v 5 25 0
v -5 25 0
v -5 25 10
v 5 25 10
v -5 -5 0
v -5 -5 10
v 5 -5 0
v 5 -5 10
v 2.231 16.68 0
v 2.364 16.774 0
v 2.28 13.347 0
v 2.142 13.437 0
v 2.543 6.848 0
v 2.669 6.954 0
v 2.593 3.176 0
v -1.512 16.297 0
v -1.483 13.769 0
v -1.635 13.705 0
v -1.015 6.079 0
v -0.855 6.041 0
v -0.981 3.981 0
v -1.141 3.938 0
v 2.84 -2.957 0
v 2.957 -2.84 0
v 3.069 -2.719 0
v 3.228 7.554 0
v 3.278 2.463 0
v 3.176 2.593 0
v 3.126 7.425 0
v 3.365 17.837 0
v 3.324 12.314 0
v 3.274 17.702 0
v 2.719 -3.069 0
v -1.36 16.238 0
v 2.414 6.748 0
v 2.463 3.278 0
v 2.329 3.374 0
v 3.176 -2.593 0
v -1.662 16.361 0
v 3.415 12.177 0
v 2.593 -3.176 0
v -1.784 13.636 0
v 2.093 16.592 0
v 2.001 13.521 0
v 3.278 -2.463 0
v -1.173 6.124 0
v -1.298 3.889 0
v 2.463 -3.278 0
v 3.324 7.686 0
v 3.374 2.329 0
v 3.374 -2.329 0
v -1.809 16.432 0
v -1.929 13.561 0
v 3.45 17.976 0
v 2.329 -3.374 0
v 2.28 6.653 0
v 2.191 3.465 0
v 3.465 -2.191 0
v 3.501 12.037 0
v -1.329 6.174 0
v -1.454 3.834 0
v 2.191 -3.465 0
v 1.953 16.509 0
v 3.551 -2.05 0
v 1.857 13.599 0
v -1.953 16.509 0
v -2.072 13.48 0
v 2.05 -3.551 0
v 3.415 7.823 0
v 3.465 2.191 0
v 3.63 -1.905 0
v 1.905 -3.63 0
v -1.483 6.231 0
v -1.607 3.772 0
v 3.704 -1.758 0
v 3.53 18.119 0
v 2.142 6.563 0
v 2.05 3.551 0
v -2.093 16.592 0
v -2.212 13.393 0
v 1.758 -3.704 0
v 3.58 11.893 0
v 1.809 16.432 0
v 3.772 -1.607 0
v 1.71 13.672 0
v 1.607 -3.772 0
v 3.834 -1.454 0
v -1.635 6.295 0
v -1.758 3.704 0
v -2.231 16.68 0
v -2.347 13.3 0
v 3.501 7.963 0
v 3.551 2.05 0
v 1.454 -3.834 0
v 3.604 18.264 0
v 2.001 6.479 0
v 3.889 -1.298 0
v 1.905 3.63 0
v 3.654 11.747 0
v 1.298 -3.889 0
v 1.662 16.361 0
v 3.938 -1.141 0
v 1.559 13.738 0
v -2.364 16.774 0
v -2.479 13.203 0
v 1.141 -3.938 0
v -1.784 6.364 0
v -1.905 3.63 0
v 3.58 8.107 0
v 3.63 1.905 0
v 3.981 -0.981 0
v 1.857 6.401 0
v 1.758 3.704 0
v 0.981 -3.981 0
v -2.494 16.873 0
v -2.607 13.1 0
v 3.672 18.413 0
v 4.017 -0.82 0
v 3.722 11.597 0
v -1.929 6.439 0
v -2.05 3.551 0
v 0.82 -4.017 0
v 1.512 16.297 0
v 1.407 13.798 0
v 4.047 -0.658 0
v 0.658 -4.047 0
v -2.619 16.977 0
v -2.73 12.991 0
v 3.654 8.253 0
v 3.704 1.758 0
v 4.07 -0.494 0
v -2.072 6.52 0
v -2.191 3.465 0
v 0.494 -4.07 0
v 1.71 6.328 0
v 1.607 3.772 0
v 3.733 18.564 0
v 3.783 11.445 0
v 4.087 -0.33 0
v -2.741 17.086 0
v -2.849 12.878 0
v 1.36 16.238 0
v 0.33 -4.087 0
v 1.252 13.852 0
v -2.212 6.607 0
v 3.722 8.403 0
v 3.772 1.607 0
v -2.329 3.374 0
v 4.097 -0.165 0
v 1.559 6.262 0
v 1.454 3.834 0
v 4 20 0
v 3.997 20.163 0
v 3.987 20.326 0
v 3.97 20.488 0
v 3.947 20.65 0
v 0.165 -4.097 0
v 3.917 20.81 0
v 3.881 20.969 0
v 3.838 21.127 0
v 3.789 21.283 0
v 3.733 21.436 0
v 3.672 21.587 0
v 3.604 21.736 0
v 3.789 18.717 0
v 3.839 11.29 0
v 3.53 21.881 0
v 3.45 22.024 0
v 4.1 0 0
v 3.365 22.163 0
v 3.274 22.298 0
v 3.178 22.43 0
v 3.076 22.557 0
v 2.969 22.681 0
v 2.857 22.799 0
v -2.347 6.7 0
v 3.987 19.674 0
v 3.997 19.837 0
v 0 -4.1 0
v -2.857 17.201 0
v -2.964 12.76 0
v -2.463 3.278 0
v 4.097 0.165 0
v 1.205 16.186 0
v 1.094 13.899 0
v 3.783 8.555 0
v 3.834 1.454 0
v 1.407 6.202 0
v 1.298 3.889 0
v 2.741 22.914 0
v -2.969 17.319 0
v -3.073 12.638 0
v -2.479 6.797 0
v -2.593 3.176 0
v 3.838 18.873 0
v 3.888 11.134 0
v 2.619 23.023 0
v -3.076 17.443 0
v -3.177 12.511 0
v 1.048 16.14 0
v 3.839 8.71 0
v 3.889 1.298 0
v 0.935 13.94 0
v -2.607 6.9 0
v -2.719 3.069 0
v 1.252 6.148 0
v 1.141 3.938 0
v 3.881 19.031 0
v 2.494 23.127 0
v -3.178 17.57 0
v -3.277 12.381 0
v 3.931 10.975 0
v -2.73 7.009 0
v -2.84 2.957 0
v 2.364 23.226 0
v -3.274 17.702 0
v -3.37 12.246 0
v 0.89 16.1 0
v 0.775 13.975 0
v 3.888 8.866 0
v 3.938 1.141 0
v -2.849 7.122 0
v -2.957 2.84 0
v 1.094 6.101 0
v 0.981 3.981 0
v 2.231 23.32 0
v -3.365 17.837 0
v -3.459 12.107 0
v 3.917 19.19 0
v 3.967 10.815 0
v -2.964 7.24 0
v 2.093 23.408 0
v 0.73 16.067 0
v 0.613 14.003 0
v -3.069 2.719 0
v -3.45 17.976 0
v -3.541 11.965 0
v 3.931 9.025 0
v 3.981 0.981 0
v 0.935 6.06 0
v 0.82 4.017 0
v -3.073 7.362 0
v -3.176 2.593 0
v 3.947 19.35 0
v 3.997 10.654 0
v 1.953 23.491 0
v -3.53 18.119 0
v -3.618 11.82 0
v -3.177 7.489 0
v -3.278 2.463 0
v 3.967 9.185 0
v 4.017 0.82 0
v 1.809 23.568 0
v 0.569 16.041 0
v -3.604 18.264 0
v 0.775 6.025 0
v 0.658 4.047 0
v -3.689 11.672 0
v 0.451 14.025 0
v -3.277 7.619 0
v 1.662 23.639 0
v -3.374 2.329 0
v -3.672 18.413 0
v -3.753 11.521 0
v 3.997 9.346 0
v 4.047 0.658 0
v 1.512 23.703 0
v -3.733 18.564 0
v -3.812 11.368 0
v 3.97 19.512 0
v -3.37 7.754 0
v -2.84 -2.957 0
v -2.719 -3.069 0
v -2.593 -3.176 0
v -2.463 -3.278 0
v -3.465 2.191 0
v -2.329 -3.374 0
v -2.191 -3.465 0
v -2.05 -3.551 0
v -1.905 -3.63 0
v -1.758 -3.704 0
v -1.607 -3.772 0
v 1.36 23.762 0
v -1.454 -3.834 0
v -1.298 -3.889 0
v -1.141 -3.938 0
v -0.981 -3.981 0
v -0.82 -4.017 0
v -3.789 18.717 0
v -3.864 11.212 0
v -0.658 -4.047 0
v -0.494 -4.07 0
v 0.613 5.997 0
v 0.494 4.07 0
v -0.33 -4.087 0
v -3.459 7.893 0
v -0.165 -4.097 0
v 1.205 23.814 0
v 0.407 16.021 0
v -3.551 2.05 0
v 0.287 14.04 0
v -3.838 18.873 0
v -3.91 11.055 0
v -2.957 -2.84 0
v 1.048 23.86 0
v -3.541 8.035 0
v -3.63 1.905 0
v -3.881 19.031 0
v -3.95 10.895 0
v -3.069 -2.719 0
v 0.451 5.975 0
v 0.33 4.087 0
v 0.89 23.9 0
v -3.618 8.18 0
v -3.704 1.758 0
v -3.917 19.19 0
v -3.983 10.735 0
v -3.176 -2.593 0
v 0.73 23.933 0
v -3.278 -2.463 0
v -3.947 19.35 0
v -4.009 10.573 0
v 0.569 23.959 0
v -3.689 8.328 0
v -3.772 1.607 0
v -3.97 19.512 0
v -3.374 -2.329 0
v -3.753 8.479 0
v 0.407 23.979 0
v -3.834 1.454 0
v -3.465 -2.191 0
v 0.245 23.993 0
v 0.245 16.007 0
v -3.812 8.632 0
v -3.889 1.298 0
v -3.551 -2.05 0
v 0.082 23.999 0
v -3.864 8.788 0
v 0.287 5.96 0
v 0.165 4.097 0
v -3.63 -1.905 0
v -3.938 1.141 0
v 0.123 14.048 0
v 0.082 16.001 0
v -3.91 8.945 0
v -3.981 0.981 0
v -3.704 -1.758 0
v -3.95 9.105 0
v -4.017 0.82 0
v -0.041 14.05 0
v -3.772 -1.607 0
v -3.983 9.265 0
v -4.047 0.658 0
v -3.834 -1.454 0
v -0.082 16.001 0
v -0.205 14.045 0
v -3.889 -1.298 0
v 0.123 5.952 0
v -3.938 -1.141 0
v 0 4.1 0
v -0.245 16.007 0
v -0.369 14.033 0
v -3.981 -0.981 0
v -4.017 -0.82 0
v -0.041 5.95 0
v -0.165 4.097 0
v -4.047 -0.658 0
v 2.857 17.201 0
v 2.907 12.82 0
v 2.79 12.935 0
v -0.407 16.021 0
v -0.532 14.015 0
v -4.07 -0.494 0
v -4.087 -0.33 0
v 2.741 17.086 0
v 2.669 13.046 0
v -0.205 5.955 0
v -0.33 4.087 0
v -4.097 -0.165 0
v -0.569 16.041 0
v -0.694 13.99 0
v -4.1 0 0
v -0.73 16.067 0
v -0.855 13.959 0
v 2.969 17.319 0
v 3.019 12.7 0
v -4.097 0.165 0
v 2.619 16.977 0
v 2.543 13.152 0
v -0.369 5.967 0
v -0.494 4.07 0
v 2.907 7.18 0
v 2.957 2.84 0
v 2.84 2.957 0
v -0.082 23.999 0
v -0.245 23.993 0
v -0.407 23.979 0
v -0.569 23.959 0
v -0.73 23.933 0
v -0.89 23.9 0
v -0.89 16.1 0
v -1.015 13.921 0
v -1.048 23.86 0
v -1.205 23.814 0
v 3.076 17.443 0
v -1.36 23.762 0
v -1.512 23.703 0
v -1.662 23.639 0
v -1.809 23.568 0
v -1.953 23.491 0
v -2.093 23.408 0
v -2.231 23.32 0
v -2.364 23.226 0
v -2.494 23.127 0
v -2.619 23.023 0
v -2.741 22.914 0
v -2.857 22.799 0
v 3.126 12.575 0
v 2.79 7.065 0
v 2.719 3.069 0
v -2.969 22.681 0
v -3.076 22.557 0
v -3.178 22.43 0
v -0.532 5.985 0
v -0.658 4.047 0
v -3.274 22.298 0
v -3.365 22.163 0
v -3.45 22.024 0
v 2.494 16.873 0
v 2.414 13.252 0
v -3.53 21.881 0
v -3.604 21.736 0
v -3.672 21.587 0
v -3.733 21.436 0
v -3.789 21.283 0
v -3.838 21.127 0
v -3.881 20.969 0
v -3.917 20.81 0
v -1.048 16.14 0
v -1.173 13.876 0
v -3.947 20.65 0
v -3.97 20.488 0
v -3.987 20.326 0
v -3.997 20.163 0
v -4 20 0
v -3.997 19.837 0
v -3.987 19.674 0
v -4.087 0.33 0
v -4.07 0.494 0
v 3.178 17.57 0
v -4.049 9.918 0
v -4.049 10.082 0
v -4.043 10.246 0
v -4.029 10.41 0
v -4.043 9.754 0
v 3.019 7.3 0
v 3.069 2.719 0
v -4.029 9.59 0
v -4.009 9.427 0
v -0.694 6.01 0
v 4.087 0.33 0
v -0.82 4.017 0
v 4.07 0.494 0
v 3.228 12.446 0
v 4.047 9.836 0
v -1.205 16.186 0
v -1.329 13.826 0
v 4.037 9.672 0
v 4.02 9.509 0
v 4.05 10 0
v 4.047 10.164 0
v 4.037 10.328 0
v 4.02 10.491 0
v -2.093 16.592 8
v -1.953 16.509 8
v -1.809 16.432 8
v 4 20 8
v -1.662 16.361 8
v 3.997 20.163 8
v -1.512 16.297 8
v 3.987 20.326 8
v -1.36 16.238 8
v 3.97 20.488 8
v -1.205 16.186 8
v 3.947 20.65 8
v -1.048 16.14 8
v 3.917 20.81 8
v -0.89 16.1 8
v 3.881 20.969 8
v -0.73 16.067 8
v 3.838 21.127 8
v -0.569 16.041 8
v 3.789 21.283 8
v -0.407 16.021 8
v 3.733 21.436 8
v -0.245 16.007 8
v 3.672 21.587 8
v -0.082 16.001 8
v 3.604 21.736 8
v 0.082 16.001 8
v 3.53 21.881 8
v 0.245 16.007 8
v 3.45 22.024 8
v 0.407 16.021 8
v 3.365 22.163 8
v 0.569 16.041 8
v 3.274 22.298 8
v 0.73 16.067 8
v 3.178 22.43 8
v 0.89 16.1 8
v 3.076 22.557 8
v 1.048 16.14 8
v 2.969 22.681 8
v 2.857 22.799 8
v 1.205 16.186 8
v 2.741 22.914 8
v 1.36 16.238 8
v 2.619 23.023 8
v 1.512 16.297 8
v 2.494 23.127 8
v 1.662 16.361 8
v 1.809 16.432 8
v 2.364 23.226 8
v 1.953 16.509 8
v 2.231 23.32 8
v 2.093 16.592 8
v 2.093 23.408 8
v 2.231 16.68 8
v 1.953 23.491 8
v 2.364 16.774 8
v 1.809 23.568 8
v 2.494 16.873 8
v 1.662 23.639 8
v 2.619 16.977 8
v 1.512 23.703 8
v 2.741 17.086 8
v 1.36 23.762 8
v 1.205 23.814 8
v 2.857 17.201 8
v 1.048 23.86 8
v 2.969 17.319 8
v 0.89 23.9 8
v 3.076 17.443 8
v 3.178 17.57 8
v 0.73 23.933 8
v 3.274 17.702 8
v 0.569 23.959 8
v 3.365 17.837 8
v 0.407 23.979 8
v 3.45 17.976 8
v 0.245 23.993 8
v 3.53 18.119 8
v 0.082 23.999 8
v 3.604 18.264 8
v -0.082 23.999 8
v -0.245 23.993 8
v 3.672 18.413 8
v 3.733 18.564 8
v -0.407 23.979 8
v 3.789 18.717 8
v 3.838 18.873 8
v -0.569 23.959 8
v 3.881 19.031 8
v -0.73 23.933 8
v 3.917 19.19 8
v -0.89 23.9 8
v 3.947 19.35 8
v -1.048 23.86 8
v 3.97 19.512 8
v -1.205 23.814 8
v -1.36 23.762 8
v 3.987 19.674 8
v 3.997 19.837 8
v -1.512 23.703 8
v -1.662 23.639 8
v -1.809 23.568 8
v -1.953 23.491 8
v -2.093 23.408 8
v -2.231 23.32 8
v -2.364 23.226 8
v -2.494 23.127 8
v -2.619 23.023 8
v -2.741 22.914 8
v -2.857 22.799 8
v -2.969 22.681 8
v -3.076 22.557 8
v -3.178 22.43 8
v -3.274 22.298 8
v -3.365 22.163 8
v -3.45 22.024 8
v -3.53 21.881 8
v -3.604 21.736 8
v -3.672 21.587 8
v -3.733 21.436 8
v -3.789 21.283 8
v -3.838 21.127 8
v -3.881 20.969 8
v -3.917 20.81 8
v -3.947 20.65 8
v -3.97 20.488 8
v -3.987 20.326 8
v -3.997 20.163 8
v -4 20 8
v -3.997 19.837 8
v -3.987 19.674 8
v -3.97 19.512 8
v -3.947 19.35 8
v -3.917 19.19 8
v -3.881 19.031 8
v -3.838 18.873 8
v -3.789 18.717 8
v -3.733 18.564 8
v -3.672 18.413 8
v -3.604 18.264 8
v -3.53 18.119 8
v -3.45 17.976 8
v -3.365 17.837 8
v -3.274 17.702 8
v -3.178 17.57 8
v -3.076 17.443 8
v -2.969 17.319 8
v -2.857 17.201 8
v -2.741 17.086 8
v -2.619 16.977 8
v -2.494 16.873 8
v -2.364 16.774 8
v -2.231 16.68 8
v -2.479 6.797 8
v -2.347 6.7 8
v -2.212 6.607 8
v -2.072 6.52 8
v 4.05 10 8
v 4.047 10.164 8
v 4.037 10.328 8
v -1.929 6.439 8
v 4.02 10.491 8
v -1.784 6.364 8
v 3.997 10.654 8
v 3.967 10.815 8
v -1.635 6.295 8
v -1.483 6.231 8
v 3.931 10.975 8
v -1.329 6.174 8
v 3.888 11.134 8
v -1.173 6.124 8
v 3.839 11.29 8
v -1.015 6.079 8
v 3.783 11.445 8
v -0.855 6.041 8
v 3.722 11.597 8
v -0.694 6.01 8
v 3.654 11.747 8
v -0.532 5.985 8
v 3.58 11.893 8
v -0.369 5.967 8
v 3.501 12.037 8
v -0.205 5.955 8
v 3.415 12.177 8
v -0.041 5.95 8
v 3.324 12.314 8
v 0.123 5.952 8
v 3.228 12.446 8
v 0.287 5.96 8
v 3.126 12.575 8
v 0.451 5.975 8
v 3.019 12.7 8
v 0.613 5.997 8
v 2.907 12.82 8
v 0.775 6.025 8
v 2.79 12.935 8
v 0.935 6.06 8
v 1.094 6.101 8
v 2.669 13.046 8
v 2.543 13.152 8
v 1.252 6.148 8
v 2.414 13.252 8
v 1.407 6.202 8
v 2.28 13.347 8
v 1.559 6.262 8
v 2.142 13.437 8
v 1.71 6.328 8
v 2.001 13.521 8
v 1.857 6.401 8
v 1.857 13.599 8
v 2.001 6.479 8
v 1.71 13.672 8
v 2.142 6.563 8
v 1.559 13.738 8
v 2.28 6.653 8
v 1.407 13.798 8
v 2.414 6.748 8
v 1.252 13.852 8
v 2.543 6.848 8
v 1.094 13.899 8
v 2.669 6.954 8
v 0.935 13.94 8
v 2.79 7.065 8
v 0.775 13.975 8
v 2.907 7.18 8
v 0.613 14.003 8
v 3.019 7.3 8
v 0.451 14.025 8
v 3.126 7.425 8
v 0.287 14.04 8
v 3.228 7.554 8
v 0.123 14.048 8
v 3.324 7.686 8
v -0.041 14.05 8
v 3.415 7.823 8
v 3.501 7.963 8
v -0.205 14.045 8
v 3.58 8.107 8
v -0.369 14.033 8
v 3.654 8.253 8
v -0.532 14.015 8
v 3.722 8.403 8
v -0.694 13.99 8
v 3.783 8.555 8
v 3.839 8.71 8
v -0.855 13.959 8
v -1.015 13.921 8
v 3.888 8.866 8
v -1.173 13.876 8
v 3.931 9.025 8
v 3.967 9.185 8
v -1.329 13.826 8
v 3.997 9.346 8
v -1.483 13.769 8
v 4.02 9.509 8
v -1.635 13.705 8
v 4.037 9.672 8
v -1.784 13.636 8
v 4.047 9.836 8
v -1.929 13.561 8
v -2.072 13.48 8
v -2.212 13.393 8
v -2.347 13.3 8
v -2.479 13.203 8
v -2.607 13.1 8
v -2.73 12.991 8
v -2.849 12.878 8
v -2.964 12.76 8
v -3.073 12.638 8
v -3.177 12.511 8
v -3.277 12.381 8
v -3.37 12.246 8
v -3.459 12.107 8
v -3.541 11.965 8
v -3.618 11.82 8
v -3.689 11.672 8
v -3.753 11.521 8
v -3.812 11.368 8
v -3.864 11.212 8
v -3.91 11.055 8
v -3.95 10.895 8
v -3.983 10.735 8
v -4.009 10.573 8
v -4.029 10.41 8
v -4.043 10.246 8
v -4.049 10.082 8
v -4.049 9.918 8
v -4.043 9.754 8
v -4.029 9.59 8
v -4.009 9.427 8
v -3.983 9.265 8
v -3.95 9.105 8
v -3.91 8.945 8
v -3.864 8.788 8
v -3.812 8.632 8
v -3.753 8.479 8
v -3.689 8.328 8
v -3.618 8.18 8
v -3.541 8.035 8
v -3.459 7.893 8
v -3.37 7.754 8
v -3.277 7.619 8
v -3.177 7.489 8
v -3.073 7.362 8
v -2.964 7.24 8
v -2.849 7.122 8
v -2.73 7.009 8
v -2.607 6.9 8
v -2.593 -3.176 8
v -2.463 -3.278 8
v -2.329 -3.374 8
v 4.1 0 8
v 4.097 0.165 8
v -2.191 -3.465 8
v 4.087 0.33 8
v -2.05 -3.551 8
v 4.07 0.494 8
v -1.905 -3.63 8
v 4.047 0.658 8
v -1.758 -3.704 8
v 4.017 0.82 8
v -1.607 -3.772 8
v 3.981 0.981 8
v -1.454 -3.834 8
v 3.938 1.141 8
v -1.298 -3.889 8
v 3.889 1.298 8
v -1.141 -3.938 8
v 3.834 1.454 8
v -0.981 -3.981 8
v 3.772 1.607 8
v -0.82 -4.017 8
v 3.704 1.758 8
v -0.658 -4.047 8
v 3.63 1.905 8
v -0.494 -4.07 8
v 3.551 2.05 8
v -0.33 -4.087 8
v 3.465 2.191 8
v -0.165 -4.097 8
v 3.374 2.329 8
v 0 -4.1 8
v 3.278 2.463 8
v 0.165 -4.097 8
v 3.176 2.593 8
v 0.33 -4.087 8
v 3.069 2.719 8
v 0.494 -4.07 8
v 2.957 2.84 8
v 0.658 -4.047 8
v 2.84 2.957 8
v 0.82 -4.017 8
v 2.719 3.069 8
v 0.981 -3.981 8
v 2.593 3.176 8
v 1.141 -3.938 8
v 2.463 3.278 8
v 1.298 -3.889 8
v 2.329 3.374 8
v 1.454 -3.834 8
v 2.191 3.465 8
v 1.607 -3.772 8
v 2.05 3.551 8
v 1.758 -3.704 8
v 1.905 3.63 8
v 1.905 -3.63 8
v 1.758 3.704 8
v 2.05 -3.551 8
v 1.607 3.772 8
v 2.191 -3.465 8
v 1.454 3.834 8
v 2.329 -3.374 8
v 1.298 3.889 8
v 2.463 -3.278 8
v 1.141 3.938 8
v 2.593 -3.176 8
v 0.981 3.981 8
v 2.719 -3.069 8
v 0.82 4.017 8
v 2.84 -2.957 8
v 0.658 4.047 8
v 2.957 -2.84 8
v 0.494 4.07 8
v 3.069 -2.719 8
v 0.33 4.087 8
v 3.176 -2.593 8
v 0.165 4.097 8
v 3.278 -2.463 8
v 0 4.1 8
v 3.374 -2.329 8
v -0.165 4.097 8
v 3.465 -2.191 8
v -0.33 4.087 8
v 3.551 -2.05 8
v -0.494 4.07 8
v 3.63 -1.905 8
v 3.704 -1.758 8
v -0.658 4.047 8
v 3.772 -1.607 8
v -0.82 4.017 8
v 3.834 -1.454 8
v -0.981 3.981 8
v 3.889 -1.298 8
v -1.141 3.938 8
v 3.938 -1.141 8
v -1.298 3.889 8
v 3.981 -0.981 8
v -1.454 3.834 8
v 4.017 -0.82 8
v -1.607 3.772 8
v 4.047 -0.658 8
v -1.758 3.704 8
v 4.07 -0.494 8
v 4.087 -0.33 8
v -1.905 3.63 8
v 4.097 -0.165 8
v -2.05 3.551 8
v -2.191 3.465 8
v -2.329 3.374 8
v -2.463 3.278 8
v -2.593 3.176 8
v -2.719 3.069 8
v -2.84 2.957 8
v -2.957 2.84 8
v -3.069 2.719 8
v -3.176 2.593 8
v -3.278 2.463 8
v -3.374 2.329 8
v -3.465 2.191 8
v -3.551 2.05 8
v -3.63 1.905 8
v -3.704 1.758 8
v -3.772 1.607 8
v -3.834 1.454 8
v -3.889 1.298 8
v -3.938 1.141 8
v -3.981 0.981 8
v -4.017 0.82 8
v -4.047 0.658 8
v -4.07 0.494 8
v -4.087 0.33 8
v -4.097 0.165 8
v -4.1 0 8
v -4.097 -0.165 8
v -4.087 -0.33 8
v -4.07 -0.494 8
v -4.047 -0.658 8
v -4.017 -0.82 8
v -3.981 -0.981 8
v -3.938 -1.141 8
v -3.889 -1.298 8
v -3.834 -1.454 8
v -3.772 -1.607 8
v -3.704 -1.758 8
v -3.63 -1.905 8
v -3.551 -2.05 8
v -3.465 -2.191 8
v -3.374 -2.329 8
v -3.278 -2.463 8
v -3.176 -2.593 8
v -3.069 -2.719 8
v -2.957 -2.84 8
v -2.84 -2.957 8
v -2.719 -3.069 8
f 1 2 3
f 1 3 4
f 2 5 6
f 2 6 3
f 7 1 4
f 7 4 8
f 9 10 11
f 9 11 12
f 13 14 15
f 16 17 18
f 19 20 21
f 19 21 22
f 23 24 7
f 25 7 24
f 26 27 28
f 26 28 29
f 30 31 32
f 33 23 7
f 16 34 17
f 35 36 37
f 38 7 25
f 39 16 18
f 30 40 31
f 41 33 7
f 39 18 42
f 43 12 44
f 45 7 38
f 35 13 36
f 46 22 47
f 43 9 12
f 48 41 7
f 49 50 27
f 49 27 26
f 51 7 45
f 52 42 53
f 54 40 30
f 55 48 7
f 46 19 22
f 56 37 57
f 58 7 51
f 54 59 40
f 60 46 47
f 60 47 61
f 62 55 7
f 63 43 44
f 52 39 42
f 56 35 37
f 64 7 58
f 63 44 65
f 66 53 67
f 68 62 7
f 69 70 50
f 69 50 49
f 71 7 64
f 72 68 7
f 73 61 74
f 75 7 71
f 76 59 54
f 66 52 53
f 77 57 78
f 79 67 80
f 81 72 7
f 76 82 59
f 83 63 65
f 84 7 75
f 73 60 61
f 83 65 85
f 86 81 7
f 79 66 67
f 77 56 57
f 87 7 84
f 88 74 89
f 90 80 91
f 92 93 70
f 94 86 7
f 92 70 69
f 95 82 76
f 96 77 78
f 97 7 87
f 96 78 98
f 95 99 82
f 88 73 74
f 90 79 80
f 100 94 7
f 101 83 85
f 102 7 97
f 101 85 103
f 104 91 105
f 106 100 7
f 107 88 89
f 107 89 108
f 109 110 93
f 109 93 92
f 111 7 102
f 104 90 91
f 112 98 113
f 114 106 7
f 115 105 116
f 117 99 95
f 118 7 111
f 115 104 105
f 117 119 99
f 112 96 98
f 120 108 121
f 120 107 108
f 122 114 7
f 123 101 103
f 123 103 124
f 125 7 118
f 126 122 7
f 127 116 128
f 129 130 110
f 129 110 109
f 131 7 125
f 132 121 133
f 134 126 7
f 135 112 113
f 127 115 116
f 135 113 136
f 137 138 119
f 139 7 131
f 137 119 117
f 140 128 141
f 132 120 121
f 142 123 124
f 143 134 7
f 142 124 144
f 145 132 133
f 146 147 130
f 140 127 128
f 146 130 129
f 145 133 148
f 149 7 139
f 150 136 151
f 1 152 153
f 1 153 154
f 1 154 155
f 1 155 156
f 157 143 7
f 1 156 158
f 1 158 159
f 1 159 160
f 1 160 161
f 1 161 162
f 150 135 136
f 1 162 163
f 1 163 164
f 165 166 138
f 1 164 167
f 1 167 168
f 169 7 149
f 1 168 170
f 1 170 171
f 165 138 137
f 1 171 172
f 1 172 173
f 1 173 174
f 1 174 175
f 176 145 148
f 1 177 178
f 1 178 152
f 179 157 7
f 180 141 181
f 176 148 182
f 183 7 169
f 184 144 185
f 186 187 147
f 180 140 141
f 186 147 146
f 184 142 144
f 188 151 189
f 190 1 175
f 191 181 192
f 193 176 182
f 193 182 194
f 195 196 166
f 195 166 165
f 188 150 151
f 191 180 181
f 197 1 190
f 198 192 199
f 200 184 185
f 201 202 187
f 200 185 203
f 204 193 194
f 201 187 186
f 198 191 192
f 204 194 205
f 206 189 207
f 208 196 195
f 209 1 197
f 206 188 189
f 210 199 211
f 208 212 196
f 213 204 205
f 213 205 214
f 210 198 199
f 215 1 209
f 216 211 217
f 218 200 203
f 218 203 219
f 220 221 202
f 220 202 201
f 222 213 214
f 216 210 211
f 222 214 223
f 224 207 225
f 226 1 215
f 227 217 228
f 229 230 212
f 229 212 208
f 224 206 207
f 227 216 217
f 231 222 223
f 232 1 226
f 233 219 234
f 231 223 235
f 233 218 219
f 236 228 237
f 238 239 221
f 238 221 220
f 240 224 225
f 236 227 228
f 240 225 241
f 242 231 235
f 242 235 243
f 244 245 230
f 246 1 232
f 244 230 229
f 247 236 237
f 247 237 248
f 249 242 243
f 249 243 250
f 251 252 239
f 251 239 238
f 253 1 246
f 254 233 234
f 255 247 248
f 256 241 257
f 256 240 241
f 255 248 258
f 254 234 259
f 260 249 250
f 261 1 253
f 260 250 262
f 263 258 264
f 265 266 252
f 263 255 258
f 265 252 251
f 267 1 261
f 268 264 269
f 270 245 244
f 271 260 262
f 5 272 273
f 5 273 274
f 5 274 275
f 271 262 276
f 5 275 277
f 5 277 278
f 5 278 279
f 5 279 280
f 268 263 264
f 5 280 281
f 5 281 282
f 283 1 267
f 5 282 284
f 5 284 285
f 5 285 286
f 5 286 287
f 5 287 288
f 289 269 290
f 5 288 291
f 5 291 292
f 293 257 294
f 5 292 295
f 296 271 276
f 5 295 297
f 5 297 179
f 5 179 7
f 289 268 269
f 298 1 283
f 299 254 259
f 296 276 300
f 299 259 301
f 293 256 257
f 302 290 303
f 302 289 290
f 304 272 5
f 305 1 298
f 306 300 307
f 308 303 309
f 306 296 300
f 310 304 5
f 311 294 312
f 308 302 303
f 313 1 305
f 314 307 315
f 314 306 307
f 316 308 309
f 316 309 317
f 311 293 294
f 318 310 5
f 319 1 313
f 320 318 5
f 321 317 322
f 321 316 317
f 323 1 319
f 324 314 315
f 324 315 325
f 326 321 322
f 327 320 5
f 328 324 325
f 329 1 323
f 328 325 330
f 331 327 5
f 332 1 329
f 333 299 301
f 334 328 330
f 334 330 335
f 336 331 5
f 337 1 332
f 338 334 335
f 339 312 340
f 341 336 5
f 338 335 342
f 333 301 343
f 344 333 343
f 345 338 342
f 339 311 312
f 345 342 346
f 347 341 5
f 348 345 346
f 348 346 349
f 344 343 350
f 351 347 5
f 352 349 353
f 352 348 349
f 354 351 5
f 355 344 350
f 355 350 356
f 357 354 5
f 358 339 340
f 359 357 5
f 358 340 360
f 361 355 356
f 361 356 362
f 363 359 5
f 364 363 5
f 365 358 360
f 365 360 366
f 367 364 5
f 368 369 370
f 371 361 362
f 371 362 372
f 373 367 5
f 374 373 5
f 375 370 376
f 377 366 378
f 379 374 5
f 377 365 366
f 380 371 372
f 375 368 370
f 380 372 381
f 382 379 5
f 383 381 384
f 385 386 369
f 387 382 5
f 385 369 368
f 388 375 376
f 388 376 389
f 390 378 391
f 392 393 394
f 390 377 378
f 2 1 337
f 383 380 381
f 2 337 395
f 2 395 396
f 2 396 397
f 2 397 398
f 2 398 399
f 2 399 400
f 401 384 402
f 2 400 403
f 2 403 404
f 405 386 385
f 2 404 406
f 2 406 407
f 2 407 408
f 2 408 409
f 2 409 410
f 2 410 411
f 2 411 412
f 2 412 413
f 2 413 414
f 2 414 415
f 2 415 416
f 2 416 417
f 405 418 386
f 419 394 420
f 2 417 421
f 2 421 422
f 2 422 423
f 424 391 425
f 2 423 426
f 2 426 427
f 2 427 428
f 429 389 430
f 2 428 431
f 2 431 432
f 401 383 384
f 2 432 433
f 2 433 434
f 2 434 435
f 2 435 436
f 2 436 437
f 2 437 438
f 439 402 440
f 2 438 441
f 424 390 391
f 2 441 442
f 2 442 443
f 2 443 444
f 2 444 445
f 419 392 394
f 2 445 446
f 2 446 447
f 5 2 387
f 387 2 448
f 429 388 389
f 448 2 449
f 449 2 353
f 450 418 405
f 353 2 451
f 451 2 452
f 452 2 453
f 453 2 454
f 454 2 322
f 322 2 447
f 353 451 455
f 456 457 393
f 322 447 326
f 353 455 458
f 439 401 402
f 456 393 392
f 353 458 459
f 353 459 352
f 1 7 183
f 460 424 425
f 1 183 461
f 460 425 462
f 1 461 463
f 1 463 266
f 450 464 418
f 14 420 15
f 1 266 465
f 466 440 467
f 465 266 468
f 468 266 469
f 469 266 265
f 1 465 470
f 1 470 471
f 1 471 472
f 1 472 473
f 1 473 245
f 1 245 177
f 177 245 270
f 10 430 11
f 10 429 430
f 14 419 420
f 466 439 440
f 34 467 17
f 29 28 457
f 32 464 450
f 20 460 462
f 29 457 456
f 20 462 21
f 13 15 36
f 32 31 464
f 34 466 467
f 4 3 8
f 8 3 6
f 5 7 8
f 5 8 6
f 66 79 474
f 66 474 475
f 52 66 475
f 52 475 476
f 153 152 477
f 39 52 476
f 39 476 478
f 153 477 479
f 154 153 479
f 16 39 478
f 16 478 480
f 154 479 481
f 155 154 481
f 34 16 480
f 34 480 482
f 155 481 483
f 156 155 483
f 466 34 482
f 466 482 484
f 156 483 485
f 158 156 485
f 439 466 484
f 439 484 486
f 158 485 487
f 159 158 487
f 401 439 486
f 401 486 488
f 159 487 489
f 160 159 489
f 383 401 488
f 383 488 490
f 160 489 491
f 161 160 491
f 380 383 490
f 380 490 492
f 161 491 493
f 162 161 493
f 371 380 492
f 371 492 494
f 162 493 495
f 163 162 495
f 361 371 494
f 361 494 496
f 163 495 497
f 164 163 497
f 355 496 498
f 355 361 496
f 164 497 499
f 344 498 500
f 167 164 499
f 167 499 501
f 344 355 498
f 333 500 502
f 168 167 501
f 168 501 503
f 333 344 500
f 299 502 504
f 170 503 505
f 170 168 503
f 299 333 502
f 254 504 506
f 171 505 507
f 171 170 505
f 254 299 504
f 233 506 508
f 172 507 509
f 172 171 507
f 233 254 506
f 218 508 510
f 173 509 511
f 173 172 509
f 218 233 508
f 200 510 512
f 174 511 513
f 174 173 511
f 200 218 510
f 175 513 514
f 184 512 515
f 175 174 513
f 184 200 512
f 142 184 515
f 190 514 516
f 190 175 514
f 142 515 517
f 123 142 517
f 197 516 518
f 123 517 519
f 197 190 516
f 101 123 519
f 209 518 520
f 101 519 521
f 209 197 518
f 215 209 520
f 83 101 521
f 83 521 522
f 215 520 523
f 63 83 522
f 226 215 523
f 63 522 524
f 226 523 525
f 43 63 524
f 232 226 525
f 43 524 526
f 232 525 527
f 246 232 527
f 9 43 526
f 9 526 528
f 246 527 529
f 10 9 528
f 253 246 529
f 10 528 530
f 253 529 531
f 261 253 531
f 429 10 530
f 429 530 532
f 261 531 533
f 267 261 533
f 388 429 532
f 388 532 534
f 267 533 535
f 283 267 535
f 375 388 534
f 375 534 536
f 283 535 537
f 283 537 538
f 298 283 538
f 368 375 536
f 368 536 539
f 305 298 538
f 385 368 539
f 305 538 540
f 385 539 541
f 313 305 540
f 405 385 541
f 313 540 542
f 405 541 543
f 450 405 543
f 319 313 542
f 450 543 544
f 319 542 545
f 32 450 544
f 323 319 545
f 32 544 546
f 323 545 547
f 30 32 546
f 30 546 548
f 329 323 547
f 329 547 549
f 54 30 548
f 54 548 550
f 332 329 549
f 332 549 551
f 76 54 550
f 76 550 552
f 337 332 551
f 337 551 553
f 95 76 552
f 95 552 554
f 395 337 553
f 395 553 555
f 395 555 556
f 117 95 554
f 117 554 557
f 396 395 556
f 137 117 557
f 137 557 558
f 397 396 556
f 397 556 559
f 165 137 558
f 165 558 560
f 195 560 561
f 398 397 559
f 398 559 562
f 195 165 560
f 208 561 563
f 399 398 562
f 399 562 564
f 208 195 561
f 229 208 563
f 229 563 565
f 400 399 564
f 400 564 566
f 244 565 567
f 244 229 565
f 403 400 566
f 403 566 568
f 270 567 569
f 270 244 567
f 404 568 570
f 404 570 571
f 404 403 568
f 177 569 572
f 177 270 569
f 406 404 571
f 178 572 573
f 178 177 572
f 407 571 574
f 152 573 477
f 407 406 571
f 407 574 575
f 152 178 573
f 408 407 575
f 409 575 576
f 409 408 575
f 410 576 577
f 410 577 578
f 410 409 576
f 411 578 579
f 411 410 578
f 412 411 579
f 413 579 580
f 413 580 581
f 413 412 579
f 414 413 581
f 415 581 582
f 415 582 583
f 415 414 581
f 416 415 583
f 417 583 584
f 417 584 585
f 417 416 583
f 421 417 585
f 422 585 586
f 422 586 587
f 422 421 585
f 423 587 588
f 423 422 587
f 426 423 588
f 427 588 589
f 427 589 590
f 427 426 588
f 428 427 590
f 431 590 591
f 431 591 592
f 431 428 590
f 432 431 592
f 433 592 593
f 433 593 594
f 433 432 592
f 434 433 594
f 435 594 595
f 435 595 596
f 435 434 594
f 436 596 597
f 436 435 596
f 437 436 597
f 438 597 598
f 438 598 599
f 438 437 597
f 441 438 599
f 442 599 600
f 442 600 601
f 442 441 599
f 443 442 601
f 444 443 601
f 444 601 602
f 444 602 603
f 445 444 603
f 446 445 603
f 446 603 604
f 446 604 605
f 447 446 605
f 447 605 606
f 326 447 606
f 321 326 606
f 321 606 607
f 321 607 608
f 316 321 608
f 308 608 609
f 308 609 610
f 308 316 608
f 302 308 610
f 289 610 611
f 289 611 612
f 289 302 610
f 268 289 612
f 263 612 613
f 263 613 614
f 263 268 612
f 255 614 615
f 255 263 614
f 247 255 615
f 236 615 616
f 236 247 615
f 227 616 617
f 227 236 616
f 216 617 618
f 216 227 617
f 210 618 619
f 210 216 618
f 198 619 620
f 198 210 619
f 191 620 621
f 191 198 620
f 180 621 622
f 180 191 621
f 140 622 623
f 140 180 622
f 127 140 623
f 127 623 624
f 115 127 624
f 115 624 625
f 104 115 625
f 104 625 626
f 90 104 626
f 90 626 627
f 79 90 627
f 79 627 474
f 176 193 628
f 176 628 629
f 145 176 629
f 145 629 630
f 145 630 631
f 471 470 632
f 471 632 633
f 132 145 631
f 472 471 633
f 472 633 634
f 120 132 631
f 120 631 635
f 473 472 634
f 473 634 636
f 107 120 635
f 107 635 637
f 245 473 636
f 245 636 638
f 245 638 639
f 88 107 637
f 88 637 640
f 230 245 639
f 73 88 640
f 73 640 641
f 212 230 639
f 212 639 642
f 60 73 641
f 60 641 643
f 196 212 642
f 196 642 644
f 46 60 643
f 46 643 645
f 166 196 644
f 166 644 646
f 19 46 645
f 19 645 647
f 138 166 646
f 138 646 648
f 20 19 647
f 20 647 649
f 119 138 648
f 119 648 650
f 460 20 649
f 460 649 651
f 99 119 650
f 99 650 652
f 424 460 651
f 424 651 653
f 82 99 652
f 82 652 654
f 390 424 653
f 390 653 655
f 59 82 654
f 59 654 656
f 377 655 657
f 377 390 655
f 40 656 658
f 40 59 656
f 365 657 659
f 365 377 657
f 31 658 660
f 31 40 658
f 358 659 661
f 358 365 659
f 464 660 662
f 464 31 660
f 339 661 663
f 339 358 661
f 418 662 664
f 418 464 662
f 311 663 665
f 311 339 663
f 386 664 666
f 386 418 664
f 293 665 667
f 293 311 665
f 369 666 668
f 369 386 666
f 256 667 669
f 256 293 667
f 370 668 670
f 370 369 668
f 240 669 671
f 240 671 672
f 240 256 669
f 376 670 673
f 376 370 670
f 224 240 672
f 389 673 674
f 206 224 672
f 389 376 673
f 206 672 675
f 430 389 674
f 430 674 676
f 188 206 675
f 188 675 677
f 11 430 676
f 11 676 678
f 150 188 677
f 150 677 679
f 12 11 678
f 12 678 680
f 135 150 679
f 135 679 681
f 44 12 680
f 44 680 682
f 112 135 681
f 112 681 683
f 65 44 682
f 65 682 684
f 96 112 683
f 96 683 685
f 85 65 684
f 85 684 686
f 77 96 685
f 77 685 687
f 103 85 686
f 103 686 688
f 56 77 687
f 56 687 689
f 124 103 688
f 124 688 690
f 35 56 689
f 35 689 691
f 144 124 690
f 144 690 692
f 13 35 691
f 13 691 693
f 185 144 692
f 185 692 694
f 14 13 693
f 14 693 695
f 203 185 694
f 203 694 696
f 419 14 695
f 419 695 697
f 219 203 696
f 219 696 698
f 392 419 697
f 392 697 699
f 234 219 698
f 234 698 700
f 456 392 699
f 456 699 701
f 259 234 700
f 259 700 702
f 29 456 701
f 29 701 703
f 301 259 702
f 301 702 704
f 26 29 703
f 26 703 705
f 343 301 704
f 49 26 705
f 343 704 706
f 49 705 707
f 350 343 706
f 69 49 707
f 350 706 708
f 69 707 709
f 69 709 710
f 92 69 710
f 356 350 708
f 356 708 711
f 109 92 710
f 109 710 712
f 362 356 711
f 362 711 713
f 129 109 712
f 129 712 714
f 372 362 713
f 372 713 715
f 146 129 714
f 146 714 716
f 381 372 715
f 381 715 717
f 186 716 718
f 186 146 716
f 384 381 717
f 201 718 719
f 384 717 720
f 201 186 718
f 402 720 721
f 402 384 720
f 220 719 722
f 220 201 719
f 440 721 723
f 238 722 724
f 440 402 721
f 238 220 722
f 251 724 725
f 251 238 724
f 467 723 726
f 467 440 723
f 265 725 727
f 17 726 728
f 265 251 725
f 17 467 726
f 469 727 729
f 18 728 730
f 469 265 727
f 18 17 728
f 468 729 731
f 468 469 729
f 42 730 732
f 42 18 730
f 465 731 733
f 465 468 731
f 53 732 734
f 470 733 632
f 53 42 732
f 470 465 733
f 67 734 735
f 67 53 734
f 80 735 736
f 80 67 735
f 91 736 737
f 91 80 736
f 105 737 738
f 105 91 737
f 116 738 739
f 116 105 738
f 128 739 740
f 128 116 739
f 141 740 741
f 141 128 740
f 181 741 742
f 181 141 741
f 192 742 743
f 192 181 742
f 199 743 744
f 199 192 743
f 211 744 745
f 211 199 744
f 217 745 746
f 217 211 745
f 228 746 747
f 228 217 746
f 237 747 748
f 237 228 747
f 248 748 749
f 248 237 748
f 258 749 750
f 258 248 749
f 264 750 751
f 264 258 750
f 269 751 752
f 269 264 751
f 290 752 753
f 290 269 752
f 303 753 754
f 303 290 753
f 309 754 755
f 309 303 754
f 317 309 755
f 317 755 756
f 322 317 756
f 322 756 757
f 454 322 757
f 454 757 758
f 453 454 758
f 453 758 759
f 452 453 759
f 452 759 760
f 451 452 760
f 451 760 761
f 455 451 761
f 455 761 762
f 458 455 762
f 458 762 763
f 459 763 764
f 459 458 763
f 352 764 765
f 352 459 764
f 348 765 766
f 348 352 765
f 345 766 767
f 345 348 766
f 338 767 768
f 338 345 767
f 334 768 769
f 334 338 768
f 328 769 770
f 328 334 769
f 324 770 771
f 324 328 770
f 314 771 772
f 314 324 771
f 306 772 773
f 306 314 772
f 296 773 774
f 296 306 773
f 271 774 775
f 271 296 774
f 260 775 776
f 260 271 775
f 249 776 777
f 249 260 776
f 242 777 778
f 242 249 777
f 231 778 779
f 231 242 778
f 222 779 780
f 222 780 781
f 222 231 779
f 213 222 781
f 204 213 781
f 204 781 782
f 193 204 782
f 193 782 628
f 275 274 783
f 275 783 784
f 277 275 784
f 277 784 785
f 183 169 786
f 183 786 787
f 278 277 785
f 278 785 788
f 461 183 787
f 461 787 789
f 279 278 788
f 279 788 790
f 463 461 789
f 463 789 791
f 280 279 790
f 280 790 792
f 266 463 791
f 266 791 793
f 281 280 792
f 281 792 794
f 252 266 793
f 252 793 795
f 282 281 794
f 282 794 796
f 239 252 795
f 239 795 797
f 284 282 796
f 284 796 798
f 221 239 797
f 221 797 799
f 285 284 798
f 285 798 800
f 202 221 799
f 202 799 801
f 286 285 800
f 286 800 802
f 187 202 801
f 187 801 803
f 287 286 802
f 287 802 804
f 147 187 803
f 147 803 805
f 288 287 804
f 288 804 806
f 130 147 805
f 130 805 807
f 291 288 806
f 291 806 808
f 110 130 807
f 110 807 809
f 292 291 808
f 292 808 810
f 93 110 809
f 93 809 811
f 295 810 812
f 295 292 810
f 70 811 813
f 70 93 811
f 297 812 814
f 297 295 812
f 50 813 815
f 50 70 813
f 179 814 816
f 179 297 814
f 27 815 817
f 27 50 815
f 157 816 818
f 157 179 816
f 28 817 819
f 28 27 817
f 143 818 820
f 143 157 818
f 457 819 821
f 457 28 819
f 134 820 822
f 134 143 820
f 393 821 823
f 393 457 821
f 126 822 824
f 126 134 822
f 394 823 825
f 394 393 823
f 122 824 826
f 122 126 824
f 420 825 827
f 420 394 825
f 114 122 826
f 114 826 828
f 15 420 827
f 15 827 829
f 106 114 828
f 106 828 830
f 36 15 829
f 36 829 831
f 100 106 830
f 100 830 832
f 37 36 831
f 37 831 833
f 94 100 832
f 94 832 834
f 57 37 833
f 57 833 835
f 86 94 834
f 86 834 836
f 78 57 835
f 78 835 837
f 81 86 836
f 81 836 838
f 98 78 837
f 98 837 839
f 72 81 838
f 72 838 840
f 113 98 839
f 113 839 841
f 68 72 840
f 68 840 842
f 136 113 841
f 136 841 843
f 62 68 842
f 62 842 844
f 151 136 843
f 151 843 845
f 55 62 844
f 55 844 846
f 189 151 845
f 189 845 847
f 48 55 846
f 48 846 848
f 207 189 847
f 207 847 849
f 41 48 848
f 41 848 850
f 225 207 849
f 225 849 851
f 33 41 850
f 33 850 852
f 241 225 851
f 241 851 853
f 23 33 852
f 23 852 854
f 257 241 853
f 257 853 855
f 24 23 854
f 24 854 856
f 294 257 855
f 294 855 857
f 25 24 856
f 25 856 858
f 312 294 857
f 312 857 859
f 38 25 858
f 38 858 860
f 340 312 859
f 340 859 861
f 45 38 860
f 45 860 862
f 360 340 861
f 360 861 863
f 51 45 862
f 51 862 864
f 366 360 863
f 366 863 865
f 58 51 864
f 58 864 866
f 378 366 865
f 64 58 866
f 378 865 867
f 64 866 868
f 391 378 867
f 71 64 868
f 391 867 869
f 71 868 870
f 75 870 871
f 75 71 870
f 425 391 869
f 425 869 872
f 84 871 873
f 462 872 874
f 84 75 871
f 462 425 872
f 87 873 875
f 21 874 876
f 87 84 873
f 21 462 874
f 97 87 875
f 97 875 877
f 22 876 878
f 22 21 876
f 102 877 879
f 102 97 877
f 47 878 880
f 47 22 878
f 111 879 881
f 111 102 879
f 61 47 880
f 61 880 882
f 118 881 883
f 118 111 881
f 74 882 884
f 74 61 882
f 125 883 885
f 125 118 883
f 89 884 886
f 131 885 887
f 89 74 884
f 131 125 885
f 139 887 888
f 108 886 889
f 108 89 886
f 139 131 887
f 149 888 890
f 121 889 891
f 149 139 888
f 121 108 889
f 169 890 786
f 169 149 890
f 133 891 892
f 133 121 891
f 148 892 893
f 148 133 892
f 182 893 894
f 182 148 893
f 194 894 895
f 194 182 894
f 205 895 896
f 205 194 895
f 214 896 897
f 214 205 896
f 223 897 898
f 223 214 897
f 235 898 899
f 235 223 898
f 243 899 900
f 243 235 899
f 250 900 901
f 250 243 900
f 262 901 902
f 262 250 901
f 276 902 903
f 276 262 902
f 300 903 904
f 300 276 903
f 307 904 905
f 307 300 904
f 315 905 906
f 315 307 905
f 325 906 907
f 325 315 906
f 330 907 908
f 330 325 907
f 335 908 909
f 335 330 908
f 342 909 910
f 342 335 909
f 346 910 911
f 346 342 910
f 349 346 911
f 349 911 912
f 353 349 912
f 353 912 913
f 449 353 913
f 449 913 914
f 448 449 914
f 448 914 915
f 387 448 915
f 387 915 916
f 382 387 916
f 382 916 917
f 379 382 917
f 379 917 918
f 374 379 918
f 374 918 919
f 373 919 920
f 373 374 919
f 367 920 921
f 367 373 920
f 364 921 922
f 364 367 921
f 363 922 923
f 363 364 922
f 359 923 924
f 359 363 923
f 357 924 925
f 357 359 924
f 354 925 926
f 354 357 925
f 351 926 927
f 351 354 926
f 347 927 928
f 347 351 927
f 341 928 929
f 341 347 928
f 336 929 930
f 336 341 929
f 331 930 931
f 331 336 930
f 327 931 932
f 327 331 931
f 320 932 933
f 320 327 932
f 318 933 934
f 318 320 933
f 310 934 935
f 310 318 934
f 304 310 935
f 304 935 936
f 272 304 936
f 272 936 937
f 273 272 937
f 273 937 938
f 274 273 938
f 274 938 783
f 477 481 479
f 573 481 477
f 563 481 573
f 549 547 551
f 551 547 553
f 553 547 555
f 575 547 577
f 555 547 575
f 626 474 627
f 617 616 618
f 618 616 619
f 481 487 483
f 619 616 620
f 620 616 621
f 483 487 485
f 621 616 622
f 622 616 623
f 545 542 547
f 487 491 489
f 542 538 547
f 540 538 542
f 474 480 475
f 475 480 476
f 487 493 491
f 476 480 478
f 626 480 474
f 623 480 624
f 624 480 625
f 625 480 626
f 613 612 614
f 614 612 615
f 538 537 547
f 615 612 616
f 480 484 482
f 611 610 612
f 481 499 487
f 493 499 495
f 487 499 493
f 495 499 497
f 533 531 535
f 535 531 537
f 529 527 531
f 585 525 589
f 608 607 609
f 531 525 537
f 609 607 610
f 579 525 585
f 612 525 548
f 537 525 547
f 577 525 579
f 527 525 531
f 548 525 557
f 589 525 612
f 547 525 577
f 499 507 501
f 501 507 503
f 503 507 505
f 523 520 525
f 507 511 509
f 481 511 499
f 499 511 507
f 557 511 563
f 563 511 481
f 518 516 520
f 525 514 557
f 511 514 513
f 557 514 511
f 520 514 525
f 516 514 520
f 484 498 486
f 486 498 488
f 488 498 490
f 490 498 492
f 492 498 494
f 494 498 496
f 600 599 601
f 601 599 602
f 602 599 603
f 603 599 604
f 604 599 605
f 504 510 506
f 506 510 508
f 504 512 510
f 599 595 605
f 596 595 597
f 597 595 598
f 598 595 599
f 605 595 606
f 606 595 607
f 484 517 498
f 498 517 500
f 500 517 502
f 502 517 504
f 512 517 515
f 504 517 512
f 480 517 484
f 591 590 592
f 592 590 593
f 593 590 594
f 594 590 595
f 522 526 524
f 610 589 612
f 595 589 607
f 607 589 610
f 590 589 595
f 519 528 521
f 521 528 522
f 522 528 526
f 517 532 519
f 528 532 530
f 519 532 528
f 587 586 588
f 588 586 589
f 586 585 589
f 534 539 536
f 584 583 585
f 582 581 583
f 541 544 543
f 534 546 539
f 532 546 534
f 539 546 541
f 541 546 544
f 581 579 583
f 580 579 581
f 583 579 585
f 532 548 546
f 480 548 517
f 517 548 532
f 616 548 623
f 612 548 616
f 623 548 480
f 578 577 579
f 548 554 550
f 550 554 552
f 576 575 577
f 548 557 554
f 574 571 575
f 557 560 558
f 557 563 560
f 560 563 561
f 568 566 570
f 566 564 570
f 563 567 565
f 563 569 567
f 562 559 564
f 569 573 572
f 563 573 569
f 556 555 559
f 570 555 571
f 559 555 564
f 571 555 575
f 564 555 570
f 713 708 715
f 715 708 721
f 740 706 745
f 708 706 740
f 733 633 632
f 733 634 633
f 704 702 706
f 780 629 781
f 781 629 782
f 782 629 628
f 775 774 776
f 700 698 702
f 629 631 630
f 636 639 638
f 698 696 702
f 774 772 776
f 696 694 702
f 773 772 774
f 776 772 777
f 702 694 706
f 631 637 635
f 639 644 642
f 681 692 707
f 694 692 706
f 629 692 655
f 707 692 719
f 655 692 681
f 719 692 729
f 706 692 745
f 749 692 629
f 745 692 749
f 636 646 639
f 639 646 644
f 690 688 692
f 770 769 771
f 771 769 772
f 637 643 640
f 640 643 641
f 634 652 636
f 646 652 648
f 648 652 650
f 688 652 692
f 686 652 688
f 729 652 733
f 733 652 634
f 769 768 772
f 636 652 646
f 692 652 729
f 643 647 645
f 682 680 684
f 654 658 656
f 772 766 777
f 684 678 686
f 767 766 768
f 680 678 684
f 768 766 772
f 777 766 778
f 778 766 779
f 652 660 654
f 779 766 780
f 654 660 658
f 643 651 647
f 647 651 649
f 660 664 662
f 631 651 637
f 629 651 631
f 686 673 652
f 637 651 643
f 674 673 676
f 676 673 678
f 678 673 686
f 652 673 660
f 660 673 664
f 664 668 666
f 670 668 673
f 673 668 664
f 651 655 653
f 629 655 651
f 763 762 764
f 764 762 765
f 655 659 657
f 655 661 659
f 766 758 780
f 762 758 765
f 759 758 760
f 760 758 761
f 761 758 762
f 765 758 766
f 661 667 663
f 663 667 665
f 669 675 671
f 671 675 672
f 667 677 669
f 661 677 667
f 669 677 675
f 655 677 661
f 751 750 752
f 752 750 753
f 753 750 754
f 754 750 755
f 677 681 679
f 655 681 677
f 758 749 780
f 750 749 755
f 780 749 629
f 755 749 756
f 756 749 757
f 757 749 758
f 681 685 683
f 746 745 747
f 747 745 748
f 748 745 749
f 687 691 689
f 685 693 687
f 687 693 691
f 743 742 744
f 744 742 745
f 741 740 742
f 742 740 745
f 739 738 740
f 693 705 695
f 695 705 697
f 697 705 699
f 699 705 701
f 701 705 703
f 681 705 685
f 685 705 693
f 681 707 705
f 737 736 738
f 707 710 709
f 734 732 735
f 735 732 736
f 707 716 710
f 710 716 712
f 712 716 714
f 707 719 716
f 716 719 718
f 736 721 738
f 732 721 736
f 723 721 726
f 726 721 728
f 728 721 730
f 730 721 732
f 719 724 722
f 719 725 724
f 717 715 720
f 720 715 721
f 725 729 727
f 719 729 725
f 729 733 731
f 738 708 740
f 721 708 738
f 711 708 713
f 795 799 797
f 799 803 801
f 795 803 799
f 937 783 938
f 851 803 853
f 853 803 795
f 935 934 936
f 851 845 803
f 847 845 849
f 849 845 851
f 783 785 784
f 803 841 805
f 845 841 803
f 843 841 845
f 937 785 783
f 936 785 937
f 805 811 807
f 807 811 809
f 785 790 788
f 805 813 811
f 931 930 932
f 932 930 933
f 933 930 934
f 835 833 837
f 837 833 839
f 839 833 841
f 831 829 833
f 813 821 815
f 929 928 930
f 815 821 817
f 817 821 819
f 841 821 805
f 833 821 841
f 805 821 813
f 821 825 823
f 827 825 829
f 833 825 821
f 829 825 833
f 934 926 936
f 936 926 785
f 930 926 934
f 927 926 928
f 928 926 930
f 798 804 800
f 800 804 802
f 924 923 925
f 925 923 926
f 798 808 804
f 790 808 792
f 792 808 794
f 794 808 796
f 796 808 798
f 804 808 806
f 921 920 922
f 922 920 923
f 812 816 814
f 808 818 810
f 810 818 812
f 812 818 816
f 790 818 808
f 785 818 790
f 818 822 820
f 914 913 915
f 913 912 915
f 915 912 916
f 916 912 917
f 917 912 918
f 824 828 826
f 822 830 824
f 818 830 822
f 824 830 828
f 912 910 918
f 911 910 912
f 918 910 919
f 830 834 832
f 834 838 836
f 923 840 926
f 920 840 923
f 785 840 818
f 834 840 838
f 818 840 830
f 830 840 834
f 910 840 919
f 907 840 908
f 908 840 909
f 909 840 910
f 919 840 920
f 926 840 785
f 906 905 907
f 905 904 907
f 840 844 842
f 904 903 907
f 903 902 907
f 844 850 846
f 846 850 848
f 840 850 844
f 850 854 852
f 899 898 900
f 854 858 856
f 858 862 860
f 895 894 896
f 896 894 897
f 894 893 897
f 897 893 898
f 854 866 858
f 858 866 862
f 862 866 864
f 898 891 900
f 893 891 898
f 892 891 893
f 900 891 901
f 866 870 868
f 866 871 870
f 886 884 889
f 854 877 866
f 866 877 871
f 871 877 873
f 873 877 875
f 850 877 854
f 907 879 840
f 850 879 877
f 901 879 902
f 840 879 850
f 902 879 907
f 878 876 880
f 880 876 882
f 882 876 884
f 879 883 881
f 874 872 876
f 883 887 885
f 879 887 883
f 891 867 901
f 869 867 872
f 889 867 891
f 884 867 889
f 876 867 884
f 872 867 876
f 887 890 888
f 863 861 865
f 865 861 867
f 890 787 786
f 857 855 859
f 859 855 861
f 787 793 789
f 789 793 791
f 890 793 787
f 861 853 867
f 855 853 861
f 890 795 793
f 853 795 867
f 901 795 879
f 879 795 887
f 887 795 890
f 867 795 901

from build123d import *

# Parameters (mm, degrees)
SKETCH_W      = 10
SKETCH_H      = 30
PAD_DEPTH     = 10
SKETCH001_R   = 4
SKETCH001_R_2 = 4.05
SKETCH001_R_3 = 4.1
POCKET_DEPTH  = 8


with BuildPart() as part:
    # Sketch → Pad (new body)
    with BuildSketch(Plane.XY):
        with Locations((0, 10)):
            Rectangle(SKETCH_W, SKETCH_H)
    extrude(amount=PAD_DEPTH)

    # Sketch001 → Pocket (cut)
    with BuildSketch(Plane.XY):
        with Locations((0, 20)):
            Circle(SKETCH001_R)
        with Locations((0, 10)):
            Circle(SKETCH001_R_2)
        Circle(SKETCH001_R_3)
    extrude(amount=POCKET_DEPTH, mode=Mode.SUBTRACT)


solid = part.part
